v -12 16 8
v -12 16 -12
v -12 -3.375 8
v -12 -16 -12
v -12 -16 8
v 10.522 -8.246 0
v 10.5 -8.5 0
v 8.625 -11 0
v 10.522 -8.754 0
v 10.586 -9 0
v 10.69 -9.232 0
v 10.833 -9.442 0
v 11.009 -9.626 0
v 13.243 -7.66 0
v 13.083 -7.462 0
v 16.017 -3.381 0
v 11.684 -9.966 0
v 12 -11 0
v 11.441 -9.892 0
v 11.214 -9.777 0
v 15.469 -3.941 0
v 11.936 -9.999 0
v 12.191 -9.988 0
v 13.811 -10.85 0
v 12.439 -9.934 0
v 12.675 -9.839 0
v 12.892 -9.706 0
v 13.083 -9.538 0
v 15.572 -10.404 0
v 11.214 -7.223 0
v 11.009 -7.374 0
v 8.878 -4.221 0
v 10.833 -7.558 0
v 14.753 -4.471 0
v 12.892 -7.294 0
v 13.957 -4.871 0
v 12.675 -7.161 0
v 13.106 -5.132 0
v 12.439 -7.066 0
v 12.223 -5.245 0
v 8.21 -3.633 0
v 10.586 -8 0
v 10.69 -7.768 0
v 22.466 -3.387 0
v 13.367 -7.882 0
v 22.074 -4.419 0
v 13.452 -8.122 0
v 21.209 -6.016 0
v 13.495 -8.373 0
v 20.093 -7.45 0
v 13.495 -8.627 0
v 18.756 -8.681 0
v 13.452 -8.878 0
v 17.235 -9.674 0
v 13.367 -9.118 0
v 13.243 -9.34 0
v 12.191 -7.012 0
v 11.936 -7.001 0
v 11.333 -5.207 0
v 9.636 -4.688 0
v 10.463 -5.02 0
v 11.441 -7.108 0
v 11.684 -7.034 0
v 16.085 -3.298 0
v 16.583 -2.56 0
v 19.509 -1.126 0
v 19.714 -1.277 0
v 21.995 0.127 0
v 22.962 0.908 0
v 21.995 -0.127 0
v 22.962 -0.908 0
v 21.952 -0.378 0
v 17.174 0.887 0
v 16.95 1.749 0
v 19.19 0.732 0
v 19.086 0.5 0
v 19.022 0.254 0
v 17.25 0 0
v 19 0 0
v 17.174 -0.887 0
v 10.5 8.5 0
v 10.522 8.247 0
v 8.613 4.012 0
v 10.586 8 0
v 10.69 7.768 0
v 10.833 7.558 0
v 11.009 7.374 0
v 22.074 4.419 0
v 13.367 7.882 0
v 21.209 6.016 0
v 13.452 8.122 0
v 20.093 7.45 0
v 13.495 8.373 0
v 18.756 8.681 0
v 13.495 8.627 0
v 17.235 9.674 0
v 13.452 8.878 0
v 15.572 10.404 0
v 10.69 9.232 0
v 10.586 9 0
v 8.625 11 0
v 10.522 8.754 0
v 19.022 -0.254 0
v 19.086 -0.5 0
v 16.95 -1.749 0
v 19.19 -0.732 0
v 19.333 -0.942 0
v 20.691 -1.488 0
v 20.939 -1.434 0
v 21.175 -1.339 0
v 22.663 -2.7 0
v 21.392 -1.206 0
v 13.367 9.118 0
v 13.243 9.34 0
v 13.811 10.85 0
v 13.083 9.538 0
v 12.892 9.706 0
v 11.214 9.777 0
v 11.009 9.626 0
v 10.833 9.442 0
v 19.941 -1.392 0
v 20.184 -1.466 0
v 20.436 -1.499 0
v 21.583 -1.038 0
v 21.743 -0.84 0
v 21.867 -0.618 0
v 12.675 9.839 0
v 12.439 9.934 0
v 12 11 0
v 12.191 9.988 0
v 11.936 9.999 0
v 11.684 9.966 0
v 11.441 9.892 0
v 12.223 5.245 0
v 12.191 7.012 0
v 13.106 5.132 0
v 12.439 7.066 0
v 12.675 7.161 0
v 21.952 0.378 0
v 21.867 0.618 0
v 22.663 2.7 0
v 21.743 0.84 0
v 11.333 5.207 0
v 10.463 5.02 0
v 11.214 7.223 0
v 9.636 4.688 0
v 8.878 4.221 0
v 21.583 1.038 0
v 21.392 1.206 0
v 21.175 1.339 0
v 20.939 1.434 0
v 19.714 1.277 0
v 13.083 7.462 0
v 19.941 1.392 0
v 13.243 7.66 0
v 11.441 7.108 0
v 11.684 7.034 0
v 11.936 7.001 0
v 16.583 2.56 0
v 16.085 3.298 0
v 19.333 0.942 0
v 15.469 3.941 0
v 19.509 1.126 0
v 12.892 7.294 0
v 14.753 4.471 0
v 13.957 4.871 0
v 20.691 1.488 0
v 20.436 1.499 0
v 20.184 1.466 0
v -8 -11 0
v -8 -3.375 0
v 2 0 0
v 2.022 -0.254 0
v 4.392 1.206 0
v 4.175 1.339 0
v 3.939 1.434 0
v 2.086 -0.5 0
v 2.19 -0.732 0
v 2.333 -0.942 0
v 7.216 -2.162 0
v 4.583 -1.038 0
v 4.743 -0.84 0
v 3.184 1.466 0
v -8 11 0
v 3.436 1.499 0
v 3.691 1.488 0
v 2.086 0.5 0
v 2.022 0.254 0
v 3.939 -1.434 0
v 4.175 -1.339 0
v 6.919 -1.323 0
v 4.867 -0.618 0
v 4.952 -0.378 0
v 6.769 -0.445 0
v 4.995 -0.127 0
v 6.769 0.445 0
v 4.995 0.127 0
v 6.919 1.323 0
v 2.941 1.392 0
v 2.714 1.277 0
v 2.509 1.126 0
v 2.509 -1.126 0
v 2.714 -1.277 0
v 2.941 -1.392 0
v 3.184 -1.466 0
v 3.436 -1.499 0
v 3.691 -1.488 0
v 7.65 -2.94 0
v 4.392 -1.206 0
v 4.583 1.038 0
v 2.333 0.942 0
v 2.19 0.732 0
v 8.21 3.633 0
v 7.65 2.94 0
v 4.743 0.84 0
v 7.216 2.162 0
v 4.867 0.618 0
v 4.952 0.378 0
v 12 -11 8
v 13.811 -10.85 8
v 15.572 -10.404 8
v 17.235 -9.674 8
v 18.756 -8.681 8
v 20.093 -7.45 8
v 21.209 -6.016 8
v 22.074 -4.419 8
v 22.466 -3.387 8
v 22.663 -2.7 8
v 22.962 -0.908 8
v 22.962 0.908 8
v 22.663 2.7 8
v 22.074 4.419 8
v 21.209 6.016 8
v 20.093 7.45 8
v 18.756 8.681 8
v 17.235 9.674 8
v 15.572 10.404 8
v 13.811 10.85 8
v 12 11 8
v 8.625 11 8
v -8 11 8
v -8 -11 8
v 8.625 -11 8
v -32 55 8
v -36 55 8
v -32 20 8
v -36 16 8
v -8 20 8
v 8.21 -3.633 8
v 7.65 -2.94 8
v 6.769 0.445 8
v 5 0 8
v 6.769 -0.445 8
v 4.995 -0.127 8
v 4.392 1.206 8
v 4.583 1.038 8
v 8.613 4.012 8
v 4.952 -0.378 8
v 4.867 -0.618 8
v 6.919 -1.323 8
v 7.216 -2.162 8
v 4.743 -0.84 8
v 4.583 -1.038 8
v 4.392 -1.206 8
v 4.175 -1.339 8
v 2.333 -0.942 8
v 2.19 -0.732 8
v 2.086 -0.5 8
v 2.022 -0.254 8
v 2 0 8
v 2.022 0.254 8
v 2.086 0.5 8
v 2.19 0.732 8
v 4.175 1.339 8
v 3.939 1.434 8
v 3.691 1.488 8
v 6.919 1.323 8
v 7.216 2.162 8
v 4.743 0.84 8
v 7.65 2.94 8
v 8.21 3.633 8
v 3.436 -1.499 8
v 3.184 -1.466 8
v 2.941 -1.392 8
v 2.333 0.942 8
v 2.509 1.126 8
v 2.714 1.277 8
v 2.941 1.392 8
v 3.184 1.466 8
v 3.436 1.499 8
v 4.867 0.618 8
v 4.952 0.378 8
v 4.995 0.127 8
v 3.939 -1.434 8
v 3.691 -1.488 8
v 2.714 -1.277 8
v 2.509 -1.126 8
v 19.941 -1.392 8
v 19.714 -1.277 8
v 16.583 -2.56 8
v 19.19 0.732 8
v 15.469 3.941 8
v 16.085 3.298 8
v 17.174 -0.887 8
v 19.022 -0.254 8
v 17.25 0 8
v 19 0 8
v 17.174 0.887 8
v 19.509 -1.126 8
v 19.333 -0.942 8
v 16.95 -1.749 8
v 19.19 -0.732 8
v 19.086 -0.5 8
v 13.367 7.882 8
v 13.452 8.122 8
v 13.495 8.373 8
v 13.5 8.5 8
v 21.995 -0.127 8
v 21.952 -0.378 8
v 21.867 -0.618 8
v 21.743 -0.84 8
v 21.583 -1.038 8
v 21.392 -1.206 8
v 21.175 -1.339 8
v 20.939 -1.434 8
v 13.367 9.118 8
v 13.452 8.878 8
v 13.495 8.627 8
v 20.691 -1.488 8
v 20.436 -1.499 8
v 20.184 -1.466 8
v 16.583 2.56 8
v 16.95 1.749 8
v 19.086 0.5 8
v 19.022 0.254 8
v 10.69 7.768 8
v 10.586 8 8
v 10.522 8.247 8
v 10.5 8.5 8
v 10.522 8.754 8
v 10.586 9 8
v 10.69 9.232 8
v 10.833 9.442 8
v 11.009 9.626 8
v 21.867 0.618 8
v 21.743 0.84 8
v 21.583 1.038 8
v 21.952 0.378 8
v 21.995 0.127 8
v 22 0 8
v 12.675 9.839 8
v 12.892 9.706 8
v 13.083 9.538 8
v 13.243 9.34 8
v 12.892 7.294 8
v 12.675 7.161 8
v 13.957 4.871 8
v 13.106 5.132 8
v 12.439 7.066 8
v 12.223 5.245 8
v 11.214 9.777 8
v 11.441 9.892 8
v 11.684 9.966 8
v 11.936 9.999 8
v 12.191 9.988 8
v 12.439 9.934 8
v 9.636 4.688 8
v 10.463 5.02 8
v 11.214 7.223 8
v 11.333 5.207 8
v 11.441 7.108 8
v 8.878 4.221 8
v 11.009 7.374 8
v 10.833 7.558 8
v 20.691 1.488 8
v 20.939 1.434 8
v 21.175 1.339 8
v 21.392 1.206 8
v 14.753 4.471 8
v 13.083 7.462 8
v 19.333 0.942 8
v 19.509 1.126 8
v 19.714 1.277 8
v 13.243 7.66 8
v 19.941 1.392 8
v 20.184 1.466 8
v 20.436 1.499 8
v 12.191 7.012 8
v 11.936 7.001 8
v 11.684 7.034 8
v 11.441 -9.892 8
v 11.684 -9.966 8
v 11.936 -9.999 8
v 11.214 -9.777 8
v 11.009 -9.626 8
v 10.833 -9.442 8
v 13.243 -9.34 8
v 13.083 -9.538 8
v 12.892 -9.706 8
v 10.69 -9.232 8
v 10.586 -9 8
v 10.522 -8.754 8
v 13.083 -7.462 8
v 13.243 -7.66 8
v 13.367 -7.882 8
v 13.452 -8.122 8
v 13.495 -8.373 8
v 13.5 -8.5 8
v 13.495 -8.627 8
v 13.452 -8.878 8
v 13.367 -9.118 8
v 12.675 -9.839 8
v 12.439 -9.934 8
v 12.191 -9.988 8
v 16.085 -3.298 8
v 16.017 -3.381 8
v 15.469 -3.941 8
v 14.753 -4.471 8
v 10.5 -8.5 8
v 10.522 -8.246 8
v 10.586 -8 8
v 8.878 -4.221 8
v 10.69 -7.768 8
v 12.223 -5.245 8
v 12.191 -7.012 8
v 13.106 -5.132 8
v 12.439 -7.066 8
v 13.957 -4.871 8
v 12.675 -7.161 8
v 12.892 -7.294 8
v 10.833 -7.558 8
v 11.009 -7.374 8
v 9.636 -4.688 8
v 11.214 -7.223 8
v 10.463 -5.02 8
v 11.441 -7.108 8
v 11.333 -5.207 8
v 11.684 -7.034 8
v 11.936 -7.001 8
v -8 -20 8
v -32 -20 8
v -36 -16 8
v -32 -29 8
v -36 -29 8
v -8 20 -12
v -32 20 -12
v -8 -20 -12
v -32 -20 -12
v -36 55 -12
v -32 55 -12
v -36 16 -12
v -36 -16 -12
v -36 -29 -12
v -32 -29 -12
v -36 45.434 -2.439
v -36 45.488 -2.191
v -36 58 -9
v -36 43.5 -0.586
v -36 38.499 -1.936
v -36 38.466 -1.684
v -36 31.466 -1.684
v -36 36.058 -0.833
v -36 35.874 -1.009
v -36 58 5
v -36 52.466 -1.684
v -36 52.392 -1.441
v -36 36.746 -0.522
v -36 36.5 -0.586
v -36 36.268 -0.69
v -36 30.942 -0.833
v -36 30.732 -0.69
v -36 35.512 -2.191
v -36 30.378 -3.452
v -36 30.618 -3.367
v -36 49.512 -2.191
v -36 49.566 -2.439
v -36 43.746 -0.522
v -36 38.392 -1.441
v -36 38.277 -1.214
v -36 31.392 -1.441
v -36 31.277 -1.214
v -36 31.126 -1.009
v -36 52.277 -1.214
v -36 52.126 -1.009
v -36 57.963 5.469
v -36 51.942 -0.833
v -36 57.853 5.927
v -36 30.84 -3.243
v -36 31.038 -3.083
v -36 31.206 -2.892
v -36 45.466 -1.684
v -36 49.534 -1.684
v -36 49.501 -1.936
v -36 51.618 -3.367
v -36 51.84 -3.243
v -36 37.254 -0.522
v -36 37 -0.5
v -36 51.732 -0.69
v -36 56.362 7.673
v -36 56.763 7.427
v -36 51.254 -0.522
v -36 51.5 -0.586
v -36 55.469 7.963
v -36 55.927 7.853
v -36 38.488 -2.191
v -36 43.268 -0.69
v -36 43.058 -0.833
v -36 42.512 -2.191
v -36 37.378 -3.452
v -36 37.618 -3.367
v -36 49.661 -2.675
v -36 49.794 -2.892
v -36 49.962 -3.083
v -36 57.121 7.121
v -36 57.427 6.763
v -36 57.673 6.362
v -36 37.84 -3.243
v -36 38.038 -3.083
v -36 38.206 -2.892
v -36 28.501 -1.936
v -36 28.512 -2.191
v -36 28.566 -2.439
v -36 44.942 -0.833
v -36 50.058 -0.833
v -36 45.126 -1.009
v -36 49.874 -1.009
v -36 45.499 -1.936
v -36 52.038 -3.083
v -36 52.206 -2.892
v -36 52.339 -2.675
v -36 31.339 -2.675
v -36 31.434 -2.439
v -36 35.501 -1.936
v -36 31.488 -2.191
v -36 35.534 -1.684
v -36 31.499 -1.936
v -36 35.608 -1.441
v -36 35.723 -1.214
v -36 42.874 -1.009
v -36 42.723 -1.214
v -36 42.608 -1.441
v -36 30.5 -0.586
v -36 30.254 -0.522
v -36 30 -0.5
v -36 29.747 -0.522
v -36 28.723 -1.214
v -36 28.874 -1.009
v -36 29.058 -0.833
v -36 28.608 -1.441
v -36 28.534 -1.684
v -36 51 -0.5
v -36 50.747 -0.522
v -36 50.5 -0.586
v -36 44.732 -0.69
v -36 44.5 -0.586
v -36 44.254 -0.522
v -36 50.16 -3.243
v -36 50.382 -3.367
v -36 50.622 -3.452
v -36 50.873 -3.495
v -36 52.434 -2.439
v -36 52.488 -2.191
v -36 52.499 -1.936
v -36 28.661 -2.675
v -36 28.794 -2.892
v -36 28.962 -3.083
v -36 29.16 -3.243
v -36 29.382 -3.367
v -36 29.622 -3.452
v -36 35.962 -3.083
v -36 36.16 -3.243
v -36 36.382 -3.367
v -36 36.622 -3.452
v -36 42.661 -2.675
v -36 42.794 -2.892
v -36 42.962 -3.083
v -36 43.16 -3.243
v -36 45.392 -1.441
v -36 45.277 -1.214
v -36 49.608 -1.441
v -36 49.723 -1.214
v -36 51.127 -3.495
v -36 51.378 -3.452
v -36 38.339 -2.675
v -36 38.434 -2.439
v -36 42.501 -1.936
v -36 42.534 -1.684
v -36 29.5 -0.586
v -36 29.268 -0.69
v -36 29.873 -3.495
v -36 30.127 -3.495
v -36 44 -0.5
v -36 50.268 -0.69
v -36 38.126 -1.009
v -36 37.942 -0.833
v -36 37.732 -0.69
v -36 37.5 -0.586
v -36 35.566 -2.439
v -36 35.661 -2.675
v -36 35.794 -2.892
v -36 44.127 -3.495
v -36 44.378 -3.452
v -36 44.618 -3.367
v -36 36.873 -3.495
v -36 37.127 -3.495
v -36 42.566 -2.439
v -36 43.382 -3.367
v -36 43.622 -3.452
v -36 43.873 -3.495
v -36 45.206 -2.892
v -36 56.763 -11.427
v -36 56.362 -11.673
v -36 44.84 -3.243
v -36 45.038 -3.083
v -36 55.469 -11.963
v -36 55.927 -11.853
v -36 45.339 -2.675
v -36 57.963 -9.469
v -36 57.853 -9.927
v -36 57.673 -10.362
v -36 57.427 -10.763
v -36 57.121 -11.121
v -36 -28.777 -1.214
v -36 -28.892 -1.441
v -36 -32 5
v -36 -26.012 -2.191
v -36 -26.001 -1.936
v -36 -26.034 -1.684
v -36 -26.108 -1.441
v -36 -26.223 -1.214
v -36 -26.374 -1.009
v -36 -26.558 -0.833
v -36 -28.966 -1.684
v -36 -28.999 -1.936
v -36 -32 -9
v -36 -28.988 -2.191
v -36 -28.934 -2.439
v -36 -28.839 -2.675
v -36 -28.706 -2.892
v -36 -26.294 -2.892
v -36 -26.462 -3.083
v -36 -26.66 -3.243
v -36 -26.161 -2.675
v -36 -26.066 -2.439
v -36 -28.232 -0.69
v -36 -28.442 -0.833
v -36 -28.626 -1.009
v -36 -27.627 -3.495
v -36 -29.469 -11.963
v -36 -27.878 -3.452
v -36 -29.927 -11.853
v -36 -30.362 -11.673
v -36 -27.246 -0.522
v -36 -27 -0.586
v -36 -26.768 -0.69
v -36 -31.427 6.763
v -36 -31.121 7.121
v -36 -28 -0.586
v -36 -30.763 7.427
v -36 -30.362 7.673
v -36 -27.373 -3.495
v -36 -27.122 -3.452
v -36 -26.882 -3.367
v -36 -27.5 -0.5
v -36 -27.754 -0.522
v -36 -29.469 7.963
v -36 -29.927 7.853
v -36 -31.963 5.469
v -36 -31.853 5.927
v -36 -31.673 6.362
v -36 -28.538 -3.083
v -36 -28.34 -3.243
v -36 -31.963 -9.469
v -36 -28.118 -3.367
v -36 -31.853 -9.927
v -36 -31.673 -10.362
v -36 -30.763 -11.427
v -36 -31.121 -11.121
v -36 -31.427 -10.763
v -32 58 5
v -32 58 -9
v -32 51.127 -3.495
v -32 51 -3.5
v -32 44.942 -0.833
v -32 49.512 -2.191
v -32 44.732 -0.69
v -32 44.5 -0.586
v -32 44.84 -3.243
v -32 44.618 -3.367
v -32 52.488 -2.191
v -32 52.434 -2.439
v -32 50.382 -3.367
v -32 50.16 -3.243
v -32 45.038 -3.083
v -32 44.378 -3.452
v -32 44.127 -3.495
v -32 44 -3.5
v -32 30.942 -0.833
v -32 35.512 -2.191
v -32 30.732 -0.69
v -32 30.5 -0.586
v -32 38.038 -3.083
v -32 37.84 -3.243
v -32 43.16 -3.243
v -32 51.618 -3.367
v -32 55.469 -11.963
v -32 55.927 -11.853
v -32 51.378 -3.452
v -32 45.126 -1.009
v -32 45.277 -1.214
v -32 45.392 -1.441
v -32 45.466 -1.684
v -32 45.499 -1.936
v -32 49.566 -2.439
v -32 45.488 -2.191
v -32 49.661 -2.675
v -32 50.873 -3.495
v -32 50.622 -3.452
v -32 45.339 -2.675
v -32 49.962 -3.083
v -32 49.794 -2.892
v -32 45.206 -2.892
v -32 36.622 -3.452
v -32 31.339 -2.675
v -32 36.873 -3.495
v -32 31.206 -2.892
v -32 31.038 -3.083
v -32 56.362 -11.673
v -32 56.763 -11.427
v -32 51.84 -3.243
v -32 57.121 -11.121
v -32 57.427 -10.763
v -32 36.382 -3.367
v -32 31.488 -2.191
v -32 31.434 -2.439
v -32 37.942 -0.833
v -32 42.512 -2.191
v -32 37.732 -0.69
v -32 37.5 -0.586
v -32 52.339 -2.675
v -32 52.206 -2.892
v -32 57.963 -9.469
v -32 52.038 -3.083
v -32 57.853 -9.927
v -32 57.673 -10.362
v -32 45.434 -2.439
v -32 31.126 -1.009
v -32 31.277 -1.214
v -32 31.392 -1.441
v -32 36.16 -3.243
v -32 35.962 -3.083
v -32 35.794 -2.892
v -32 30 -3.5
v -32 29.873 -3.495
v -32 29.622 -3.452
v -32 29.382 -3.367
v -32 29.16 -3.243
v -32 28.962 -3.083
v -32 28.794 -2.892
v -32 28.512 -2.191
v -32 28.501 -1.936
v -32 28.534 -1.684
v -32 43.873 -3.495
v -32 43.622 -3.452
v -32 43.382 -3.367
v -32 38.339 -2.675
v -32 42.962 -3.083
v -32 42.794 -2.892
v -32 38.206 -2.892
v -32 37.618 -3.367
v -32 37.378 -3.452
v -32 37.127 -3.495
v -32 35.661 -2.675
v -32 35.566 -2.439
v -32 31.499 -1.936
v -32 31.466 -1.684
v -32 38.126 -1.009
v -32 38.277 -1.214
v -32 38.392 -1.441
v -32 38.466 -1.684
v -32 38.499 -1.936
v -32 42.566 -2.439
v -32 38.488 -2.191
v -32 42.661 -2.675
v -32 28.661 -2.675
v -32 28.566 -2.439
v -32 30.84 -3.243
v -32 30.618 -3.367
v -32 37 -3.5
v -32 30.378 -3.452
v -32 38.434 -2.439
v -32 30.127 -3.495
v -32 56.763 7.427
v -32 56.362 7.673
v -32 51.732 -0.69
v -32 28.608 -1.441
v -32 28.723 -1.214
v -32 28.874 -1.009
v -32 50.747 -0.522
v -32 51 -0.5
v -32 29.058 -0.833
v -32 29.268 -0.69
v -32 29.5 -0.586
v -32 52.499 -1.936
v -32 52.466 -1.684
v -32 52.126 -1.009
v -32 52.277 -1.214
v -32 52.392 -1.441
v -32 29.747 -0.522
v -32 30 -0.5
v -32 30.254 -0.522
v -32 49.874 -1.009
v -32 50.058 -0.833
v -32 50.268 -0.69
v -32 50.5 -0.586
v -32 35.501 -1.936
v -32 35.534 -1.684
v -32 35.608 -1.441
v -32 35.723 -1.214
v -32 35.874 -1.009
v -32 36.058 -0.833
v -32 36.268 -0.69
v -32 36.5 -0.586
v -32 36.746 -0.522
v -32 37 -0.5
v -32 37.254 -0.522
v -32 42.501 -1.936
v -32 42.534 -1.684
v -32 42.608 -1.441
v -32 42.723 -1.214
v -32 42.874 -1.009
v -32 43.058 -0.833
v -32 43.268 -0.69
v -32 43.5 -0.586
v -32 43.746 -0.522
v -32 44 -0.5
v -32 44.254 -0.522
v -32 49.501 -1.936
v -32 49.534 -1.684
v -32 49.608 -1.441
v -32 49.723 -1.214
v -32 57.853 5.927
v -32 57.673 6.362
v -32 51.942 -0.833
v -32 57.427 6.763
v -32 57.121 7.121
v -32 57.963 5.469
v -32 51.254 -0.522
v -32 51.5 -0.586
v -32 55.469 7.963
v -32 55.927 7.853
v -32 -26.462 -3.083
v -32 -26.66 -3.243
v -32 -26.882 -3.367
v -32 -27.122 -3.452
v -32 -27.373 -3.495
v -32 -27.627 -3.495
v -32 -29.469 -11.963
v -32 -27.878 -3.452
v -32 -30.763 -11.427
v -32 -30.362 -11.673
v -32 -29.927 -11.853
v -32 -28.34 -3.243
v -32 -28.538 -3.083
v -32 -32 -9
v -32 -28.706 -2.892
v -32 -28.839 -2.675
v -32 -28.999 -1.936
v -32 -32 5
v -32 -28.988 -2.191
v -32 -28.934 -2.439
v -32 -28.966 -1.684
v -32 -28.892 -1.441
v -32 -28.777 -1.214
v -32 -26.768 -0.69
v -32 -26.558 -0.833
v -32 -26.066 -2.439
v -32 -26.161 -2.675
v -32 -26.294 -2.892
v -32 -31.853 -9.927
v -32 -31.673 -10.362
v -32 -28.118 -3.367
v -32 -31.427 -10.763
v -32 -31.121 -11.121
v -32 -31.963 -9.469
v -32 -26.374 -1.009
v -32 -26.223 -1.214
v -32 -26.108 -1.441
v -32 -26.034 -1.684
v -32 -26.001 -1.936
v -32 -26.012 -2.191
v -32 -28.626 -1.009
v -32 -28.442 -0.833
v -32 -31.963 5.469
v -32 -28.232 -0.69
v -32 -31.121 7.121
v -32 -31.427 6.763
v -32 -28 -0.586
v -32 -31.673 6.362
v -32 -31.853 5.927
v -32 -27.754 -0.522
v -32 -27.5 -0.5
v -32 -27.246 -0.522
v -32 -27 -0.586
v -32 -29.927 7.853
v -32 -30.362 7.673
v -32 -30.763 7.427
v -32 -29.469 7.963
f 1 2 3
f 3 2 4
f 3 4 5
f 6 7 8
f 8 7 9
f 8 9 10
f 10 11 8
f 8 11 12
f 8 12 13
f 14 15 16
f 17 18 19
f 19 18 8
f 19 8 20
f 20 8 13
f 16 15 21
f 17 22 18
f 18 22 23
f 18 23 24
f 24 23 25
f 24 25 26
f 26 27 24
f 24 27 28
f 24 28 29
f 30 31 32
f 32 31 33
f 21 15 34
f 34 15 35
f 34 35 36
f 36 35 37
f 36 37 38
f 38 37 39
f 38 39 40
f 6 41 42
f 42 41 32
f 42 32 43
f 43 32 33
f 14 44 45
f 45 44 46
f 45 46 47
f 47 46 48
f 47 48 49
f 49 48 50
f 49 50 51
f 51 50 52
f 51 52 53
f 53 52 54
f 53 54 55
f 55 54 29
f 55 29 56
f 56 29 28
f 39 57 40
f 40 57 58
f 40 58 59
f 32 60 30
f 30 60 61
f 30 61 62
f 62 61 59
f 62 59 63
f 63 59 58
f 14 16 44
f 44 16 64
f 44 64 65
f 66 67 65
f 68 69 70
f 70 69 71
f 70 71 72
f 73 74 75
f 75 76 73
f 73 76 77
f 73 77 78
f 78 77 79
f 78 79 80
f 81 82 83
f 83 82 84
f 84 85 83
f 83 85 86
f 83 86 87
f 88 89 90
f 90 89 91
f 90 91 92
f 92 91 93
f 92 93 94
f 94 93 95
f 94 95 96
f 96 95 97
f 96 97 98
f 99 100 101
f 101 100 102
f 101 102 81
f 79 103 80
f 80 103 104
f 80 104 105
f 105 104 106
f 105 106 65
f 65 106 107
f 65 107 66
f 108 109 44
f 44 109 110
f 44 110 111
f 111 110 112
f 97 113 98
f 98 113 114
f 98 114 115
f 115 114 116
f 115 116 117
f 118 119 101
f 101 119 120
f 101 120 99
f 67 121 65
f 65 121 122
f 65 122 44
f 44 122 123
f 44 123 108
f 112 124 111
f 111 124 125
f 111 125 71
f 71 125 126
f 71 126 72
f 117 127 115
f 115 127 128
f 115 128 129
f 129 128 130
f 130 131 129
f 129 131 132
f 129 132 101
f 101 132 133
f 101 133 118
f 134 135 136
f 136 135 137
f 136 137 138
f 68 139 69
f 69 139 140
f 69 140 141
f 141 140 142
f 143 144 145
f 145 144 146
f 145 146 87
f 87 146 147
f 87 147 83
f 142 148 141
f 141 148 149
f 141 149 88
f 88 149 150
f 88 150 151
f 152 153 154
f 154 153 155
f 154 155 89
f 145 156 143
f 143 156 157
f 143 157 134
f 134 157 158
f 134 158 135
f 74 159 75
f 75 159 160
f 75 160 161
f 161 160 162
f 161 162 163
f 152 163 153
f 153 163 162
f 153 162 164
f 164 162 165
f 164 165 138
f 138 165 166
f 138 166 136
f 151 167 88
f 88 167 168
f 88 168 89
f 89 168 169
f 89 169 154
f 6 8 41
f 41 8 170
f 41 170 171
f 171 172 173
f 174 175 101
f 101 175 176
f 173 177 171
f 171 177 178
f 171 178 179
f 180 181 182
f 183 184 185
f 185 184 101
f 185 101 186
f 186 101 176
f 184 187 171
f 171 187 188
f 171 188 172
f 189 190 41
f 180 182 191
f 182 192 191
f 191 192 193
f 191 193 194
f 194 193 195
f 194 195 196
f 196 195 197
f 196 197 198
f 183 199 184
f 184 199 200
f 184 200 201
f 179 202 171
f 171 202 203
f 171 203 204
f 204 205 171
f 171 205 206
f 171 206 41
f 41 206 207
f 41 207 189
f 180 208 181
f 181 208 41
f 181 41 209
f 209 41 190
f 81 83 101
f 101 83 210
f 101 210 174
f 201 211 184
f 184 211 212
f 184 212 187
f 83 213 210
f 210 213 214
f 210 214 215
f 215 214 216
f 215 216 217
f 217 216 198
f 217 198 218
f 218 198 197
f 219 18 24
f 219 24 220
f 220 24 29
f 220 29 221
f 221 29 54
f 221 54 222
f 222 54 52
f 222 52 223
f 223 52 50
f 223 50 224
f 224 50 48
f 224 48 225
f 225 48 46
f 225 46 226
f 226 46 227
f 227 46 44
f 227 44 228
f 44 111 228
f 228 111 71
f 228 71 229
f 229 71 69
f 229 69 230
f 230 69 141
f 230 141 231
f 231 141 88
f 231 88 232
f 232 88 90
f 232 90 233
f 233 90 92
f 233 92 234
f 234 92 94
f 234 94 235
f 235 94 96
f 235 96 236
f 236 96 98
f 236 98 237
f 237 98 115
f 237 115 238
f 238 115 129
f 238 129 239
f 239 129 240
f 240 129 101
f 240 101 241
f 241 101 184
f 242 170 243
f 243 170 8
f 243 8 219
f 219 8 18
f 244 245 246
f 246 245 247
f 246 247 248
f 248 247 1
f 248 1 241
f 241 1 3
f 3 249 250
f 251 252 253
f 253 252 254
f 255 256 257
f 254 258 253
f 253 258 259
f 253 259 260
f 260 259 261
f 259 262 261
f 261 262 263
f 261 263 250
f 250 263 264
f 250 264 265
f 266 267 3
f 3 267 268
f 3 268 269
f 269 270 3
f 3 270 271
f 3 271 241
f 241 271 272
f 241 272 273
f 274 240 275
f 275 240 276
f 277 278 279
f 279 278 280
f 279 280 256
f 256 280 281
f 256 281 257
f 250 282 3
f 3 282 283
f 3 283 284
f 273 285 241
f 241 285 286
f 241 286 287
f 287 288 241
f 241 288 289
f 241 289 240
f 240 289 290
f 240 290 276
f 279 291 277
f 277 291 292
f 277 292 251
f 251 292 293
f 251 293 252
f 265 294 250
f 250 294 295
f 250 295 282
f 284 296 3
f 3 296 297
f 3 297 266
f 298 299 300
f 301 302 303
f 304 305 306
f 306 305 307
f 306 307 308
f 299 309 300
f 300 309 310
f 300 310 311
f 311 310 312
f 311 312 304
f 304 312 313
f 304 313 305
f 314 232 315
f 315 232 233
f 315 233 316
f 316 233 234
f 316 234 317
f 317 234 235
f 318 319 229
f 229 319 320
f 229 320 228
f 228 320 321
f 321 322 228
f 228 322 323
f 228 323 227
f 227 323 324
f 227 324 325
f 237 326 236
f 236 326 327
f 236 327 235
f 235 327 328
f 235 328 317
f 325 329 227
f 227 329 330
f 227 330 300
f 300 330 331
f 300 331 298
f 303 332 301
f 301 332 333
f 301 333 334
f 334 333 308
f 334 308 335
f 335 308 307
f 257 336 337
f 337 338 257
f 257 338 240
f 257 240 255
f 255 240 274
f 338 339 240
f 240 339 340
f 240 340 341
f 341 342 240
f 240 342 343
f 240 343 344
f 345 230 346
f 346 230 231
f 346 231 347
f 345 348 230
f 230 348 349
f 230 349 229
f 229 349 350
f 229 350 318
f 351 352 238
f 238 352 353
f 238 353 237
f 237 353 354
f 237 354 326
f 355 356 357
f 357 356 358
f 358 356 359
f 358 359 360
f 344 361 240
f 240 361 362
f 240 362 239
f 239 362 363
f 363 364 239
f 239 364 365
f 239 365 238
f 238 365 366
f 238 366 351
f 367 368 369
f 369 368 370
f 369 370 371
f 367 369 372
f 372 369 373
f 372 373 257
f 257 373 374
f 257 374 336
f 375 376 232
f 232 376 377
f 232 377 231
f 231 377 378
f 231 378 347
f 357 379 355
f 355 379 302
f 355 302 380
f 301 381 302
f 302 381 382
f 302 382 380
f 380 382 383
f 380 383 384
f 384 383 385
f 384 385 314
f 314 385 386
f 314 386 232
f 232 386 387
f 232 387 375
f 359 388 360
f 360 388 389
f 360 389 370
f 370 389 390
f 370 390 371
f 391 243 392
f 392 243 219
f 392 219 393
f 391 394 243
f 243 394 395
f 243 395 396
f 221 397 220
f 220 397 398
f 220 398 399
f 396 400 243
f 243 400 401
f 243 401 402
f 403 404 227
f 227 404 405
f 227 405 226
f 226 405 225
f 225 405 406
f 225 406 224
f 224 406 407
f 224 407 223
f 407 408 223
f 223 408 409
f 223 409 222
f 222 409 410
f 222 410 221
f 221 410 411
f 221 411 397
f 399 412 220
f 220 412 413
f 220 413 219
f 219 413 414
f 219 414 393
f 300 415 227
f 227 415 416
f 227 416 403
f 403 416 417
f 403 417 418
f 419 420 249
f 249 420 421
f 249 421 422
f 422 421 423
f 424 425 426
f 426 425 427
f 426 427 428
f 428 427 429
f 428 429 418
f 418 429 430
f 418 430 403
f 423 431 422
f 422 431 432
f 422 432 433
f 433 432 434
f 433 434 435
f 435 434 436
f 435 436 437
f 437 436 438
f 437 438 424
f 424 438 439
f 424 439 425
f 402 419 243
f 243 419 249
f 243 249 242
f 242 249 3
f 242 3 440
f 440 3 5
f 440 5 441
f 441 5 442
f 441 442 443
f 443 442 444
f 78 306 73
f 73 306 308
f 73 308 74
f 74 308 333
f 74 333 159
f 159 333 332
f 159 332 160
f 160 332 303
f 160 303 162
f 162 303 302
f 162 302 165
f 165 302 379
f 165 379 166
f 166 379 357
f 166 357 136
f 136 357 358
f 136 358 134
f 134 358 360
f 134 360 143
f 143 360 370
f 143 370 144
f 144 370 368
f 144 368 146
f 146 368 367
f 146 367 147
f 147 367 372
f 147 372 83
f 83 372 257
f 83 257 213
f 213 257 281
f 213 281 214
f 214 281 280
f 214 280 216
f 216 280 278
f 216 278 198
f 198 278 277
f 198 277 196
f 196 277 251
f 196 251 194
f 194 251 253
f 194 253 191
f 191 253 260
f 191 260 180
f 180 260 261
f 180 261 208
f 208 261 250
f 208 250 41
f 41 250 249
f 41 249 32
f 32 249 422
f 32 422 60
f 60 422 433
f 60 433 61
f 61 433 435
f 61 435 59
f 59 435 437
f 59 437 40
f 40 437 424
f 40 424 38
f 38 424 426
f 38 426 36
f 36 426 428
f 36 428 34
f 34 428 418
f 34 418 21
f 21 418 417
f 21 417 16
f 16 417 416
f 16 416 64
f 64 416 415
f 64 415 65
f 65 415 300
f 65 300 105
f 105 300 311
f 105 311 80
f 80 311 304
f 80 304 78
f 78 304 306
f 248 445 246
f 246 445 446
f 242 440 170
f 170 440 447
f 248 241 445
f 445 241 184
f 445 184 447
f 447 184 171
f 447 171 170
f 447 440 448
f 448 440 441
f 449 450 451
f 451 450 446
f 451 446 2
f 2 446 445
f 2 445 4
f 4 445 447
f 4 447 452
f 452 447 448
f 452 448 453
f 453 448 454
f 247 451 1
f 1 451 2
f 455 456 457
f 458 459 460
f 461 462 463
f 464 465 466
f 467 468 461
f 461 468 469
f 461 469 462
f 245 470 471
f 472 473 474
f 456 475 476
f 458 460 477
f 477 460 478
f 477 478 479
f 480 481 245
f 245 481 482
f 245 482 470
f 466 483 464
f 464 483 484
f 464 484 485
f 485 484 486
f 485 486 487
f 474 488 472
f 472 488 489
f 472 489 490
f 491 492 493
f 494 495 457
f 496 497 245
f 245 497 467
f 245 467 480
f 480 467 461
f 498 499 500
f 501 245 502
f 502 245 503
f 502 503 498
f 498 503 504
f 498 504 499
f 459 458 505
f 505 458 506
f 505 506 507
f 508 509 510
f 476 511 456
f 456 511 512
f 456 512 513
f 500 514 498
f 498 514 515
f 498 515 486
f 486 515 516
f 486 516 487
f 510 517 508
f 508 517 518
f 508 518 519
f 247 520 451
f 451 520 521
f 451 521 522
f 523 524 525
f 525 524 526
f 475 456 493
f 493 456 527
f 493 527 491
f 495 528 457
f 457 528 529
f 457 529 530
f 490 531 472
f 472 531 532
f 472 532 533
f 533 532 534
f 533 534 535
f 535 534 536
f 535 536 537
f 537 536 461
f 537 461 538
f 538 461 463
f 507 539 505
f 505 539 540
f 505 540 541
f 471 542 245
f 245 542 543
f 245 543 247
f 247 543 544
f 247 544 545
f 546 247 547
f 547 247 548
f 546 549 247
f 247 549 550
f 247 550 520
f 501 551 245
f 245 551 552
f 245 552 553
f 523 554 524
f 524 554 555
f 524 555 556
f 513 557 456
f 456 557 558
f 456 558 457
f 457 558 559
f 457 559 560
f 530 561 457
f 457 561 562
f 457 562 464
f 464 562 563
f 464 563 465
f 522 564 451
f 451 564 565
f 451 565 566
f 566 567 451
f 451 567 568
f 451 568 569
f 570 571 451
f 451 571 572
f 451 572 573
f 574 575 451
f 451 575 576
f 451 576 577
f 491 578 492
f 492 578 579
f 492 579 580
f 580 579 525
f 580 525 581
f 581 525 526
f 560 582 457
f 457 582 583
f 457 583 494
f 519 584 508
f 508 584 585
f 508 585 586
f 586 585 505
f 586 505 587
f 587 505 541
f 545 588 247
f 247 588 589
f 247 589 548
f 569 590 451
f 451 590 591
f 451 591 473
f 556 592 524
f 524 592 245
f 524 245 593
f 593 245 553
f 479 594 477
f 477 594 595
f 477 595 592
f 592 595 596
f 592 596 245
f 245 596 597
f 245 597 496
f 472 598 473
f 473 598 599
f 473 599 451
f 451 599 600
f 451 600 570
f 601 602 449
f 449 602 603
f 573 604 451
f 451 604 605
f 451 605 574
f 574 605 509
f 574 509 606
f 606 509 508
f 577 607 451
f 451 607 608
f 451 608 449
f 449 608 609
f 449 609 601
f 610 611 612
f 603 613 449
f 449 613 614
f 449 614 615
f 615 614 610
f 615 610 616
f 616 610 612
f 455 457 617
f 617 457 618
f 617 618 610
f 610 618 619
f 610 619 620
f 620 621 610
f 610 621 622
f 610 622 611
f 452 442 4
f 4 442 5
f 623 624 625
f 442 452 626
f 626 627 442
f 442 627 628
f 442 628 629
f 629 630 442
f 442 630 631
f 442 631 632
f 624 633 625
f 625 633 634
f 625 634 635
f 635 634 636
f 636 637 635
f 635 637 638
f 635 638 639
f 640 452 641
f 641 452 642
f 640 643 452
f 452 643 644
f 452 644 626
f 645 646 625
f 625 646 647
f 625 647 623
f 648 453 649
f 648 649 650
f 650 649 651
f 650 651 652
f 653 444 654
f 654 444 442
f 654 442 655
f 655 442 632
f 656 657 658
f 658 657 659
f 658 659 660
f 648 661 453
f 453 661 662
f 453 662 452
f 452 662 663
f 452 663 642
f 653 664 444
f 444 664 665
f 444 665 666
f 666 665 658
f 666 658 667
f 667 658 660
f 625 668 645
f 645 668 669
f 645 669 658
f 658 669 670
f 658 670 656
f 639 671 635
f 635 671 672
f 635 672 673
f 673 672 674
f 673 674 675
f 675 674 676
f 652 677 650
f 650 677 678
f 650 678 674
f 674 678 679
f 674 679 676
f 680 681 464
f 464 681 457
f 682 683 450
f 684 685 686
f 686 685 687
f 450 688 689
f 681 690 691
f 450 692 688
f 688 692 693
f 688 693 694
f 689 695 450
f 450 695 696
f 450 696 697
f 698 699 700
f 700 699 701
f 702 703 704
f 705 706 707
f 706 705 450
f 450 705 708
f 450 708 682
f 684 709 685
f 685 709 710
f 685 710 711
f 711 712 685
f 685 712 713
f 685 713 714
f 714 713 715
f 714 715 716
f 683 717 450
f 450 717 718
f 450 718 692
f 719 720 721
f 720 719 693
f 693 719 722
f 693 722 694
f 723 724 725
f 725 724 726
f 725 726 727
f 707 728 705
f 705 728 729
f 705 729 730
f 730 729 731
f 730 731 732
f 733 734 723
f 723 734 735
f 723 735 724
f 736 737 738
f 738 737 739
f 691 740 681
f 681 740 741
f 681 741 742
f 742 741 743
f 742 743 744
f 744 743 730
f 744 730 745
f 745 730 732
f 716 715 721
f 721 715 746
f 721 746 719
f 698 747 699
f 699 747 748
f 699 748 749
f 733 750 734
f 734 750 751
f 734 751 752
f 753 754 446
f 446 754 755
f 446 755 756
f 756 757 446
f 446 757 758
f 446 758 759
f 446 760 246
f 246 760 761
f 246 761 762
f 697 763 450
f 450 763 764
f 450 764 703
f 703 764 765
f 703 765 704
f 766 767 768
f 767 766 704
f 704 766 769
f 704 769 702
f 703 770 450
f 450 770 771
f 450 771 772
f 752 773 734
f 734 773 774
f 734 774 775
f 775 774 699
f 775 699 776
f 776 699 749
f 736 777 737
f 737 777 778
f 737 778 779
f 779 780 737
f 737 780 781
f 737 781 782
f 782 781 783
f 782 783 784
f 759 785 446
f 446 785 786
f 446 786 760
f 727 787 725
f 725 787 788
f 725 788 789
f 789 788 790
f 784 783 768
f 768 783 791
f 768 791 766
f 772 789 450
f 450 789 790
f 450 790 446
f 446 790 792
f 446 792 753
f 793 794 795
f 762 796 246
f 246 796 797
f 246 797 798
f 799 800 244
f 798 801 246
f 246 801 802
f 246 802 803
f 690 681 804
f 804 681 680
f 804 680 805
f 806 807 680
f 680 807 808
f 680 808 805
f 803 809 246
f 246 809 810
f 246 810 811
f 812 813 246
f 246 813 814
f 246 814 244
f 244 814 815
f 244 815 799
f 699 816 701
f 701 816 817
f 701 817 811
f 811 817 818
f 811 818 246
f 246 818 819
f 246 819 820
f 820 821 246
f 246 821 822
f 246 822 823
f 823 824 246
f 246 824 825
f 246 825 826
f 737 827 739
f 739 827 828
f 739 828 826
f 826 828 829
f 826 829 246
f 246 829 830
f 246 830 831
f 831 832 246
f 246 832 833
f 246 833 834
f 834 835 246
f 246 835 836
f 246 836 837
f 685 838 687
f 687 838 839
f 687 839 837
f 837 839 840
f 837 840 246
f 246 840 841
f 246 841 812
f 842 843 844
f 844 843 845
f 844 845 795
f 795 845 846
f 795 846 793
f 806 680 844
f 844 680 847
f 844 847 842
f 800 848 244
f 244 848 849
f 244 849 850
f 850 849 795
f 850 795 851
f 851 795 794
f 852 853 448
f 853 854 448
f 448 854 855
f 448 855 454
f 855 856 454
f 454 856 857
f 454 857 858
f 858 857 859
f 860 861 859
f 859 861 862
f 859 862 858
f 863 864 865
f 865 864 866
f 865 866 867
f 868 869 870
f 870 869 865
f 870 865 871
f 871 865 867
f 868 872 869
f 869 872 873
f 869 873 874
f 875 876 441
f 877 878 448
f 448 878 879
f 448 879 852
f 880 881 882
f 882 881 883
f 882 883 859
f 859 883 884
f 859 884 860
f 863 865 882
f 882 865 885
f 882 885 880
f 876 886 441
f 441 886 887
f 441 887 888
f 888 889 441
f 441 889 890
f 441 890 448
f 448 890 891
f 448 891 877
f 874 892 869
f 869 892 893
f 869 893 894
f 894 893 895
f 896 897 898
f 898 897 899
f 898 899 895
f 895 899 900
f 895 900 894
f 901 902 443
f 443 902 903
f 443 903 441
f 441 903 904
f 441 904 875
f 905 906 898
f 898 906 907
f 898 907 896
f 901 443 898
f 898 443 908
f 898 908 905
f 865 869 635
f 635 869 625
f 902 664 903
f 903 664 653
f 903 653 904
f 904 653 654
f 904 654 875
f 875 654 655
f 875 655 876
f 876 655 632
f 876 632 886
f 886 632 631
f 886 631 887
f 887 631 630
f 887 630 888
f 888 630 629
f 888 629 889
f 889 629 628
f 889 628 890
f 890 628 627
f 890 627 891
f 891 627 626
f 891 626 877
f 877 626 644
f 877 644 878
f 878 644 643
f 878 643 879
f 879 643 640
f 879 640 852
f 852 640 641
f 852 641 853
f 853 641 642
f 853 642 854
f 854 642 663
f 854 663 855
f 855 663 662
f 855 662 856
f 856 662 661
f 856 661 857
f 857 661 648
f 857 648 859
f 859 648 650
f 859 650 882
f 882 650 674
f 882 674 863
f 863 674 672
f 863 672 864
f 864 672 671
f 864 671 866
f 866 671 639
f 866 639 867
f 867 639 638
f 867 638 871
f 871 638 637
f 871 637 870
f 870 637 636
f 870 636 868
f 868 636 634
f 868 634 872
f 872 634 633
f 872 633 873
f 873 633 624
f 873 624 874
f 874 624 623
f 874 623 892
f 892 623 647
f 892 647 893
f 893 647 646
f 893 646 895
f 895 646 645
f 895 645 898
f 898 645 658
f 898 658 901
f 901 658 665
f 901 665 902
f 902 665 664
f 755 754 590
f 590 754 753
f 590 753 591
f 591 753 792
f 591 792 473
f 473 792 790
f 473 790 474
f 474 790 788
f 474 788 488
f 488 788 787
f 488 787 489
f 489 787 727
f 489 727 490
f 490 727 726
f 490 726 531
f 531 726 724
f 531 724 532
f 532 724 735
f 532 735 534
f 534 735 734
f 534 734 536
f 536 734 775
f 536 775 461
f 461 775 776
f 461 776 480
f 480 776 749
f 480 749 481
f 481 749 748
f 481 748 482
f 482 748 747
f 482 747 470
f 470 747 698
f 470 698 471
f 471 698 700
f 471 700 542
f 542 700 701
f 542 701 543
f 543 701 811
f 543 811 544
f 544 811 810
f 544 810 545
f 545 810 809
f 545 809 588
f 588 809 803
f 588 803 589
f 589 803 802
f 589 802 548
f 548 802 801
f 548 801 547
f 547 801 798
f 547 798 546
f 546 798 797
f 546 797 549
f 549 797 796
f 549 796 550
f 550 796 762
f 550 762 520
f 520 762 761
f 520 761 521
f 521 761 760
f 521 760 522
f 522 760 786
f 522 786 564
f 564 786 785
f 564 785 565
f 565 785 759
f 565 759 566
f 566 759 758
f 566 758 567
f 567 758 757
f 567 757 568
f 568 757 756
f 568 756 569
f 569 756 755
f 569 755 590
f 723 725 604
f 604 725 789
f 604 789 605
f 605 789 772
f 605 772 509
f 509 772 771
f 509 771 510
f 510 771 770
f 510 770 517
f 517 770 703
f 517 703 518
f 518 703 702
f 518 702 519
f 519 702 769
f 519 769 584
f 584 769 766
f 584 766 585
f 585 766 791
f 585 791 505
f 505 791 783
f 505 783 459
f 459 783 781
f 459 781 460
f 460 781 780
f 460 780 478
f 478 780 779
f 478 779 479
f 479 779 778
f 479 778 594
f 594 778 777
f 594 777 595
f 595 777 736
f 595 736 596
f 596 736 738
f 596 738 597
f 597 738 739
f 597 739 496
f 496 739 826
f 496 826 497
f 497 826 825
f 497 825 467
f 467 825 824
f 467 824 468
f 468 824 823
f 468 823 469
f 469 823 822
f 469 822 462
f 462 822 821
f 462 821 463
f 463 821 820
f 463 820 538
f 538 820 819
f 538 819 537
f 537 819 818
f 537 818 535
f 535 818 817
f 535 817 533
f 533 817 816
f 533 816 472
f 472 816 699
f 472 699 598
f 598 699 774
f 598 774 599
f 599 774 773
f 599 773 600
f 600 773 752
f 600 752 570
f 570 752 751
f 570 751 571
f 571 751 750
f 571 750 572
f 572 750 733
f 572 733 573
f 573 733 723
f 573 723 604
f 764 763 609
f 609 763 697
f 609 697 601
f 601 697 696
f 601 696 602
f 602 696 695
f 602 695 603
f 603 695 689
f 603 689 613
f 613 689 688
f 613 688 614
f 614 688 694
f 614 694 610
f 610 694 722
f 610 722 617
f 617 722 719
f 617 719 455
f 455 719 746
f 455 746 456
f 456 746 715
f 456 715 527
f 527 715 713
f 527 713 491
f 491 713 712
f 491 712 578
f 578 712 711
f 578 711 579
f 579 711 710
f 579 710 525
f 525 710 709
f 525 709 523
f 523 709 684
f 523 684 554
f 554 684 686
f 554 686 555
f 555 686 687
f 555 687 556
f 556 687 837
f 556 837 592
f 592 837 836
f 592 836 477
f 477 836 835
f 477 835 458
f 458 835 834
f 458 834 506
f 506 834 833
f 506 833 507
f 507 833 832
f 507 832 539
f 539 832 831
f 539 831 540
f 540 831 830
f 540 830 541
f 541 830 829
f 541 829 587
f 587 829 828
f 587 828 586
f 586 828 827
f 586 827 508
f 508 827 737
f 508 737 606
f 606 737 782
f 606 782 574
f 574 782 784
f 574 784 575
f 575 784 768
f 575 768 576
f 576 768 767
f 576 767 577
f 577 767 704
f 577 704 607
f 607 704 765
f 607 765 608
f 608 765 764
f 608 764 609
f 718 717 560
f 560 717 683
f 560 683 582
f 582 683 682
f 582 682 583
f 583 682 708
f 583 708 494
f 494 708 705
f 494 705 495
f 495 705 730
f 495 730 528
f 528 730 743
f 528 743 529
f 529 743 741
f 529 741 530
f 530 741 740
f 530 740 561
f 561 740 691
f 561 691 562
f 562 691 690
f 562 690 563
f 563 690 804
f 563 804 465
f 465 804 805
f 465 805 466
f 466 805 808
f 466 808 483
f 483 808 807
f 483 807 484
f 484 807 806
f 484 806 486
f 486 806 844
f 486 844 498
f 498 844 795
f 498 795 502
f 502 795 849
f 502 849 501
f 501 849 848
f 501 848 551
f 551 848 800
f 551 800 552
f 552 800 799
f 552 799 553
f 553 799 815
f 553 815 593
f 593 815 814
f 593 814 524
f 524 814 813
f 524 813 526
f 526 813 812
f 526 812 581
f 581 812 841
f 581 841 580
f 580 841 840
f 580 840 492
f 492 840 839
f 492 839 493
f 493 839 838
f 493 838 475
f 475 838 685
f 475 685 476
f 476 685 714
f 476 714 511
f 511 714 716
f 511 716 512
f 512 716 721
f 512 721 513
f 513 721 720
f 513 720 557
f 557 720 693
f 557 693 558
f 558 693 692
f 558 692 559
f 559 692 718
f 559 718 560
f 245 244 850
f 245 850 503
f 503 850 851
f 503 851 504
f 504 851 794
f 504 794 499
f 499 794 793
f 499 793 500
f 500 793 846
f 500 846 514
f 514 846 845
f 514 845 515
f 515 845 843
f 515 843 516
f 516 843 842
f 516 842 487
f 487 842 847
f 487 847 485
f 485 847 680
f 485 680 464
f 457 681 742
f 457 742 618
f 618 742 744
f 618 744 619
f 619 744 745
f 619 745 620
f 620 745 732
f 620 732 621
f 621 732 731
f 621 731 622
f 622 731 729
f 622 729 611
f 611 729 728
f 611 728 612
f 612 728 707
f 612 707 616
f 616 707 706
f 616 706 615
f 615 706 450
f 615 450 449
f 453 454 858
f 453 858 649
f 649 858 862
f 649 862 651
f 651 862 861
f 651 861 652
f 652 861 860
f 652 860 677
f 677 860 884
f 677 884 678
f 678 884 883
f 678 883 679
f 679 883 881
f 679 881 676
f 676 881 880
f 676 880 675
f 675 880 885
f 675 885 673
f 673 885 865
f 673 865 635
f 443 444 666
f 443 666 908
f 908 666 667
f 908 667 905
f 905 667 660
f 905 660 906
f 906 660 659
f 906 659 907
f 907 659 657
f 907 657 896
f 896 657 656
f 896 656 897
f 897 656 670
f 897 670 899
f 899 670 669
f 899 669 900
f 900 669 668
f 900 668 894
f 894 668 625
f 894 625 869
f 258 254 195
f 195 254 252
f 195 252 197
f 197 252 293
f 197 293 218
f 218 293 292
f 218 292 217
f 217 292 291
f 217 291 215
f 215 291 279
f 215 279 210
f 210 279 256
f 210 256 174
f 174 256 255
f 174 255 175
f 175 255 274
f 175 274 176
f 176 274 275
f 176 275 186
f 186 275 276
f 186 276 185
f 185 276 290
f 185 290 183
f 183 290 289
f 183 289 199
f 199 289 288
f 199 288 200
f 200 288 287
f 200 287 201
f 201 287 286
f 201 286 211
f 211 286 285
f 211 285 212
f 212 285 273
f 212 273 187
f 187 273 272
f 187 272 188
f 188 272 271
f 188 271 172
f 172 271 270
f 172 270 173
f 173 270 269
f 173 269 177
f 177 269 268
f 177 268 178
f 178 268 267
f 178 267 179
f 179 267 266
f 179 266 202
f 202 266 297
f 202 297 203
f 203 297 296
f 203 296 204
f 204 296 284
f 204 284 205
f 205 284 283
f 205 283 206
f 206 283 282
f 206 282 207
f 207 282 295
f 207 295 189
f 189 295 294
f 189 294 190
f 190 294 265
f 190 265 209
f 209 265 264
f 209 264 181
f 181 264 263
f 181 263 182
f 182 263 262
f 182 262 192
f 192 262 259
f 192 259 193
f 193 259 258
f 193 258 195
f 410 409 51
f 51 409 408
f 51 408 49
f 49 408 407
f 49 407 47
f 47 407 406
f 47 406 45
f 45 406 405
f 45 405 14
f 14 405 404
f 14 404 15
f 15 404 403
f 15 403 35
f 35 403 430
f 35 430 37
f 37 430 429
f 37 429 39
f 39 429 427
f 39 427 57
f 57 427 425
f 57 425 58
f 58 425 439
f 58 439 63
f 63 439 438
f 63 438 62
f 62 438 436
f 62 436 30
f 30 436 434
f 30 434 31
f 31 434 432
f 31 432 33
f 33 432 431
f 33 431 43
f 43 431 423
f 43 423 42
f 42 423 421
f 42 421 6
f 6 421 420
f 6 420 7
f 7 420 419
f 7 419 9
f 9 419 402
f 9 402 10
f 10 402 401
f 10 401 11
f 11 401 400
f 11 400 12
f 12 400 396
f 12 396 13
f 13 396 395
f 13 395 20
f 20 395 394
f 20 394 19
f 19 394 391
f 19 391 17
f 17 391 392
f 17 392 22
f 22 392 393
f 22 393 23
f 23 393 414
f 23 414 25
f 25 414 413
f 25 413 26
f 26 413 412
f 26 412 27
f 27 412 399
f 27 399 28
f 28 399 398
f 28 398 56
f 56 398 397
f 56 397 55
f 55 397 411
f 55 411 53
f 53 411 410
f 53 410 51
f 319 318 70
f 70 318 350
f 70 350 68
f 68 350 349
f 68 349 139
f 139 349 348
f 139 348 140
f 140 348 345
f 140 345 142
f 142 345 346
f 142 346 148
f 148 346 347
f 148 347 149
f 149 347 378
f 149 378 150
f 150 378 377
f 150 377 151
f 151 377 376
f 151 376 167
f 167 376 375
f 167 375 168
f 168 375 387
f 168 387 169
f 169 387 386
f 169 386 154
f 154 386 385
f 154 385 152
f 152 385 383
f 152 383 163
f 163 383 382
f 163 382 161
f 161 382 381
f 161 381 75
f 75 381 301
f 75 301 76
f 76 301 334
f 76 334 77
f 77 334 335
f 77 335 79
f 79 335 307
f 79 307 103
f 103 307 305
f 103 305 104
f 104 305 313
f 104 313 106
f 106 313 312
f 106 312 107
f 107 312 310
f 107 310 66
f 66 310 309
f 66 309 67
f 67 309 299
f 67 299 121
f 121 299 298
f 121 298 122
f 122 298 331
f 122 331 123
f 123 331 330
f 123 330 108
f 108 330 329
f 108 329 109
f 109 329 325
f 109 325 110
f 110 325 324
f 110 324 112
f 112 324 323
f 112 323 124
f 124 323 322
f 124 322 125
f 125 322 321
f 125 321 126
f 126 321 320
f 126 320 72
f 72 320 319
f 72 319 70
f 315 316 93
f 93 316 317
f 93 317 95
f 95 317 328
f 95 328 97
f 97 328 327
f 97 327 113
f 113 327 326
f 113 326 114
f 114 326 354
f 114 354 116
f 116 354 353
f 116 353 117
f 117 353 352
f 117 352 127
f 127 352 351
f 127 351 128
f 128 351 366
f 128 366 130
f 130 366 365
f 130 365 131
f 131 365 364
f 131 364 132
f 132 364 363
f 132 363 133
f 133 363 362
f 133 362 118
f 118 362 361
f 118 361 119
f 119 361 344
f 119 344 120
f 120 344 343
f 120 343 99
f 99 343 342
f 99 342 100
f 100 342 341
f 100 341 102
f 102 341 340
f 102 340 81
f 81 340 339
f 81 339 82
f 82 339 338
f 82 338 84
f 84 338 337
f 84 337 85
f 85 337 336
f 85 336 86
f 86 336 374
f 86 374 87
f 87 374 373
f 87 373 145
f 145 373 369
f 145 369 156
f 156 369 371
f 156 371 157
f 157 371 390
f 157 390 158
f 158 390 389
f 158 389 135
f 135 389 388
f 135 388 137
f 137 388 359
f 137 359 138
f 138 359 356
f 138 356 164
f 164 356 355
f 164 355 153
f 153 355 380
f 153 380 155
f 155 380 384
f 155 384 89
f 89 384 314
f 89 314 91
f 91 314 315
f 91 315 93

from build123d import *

# Parameters (mm, degrees)
BOSS_EXTRUDE2_DEPTH = 8
SKETCH3_R           = 5.25
CUT_EXTRUDE1_DEPTH  = 8
SKETCH7_W           = 4
SKETCH7_H           = 9
BOSS_EXTRUDE3_DEPTH = 8
SKETCH8_W           = 4
SKETCH8_H           = 40
BOSS_EXTRUDE4_DEPTH = 12
SKETCH9_W           = 20
SKETCH9_H           = 4
BOSS_EXTRUDE5_DEPTH = 24
SKETCH10_W          = 20
SKETCH10_H          = 4
BOSS_EXTRUDE6_DEPTH = 24
SKETCH12_W          = 4
SKETCH12_H          = 38
BOSS_EXTRUDE7_DEPTH = 20
SKETCH13_W          = 4
SKETCH13_H          = 20
BOSS_EXTRUDE8_DEPTH = 12
SKETCH14_R          = 1.5
CUT_EXTRUDE2_DEPTH  = 12
SKETCH15_R          = 1.5
CUT_EXTRUDE3_DEPTH  = 12
FILLET1_R           = 3
SKETCH16_R          = 1.5
CUT_EXTRUDE4_DEPTH  = 12


with BuildPart() as part:
    # Sketch1 → Boss-Extrude2 (new body)
    with BuildSketch(Plane.XY):
        with BuildLine():
            ThreePointArc((12, 11), (1, 0), (12, -11))
            Line((12, -11), (12, 11))
        make_face()
        with BuildLine():
            Line((12, 11), (12, -11))
            ThreePointArc((12, -11), (19.778174593, -7.778174593), (23, 0))
            ThreePointArc((23, 0), (19.778174593, 7.778174593), (12, 11))
        make_face()
        with BuildLine():
            Line((-12, 11), (-12, -11))
            Line((-12, -11), (12, -11))
            ThreePointArc((12, -11), (1, 0), (12, 11))
            Line((12, 11), (-12, 11))
        make_face()
    extrude(amount=BOSS_EXTRUDE2_DEPTH)

    # Sketch3 → Cut-Extrude1 (cut)
    with BuildSketch(Plane.XY.offset(8)):
        with Locations((12, 0)):
            Circle(SKETCH3_R)
    extrude(amount=-CUT_EXTRUDE1_DEPTH, mode=Mode.SUBTRACT)

    # Sketch7 → Boss-Extrude3 (add)
    with BuildSketch(Plane.XY.offset(8)):
        with Locations((-10, 15.5)):
            Rectangle(SKETCH7_W, SKETCH7_H)
        with Locations((-10, -15.5)):
            Rectangle(SKETCH7_W, SKETCH7_H)
    extrude(amount=-BOSS_EXTRUDE3_DEPTH)

    # Sketch8 → Boss-Extrude4 (add)
    with BuildSketch(Plane(origin=(0, 0, 0), x_dir=(-1, 0, 0), z_dir=(0, 0, -1))):
        with Locations((10, 0)):
            Rectangle(SKETCH8_W, SKETCH8_H)
    extrude(amount=BOSS_EXTRUDE4_DEPTH)

    # Sketch9 → Boss-Extrude5 (add)
    with BuildSketch(Plane.ZY.offset(12)):
        with Locations((-2, 18)):
            Rectangle(SKETCH9_W, SKETCH9_H)
    extrude(amount=BOSS_EXTRUDE5_DEPTH)

    # Sketch10 → Boss-Extrude6 (add)
    with BuildSketch(Plane.ZY.offset(12)):
        with Locations((-2, -18)):
            Rectangle(SKETCH10_W, SKETCH10_H)
    extrude(amount=BOSS_EXTRUDE6_DEPTH)

    # Sketch12 → Boss-Extrude7 (add)
    with BuildSketch(Plane(origin=(0, 0, -12), x_dir=(-1, 0, 0), z_dir=(0, 0, -1))):
        with Locations((34, 39)):
            Rectangle(SKETCH12_W, SKETCH12_H)
    extrude(amount=-BOSS_EXTRUDE7_DEPTH)

    # Sketch13 → Boss-Extrude8 (add)
    with BuildSketch(Plane.XZ.offset(20)):
        with Locations((-34, -2)):
            Rectangle(SKETCH13_W, SKETCH13_H)
    extrude(amount=BOSS_EXTRUDE8_DEPTH)

    # Sketch14 → Cut-Extrude2 (cut)
    with BuildSketch(Plane.ZY.offset(36)):
        with Locations((-2, -27.5)):
            Circle(SKETCH14_R)
    extrude(amount=-CUT_EXTRUDE2_DEPTH, mode=Mode.SUBTRACT)

    # Sketch15 → Cut-Extrude3 (cut)
    with BuildSketch(Plane.ZY.offset(36)):
        with Locations((-2, 51)):
            Circle(SKETCH15_R)
        with Locations((-2, 44)):
            Circle(SKETCH15_R)
        with Locations((-2, 37)):
            Circle(SKETCH15_R)
        with Locations((-2, 30)):
            Circle(SKETCH15_R)
    extrude(amount=-CUT_EXTRUDE3_DEPTH, mode=Mode.SUBTRACT)

    # Fillet1
    fillet1_edges = [part.edges().sort_by_distance(p)[0] for p in [
        (-34, -32, -12),
        (-34, -32, 8),
        (-34, 58, 8),
        (-34, 58, -12),
    ]]
    fillet(fillet1_edges, radius=FILLET1_R)

    # Sketch16 → Cut-Extrude4 (cut)
    with BuildSketch(Plane(origin=(0, 0, 0), x_dir=(-1, 0, 0), z_dir=(0, 0, -1))):
        with Locations((-12, 8.5)):
            Circle(SKETCH16_R)
        with Locations((-20.5, 0)):
            Circle(SKETCH16_R)
        with Locations((-12, -8.5)):
            Circle(SKETCH16_R)
        with Locations((-3.5, 0)):
            Circle(SKETCH16_R)
    extrude(amount=-CUT_EXTRUDE4_DEPTH, mode=Mode.SUBTRACT)


solid = part.part
